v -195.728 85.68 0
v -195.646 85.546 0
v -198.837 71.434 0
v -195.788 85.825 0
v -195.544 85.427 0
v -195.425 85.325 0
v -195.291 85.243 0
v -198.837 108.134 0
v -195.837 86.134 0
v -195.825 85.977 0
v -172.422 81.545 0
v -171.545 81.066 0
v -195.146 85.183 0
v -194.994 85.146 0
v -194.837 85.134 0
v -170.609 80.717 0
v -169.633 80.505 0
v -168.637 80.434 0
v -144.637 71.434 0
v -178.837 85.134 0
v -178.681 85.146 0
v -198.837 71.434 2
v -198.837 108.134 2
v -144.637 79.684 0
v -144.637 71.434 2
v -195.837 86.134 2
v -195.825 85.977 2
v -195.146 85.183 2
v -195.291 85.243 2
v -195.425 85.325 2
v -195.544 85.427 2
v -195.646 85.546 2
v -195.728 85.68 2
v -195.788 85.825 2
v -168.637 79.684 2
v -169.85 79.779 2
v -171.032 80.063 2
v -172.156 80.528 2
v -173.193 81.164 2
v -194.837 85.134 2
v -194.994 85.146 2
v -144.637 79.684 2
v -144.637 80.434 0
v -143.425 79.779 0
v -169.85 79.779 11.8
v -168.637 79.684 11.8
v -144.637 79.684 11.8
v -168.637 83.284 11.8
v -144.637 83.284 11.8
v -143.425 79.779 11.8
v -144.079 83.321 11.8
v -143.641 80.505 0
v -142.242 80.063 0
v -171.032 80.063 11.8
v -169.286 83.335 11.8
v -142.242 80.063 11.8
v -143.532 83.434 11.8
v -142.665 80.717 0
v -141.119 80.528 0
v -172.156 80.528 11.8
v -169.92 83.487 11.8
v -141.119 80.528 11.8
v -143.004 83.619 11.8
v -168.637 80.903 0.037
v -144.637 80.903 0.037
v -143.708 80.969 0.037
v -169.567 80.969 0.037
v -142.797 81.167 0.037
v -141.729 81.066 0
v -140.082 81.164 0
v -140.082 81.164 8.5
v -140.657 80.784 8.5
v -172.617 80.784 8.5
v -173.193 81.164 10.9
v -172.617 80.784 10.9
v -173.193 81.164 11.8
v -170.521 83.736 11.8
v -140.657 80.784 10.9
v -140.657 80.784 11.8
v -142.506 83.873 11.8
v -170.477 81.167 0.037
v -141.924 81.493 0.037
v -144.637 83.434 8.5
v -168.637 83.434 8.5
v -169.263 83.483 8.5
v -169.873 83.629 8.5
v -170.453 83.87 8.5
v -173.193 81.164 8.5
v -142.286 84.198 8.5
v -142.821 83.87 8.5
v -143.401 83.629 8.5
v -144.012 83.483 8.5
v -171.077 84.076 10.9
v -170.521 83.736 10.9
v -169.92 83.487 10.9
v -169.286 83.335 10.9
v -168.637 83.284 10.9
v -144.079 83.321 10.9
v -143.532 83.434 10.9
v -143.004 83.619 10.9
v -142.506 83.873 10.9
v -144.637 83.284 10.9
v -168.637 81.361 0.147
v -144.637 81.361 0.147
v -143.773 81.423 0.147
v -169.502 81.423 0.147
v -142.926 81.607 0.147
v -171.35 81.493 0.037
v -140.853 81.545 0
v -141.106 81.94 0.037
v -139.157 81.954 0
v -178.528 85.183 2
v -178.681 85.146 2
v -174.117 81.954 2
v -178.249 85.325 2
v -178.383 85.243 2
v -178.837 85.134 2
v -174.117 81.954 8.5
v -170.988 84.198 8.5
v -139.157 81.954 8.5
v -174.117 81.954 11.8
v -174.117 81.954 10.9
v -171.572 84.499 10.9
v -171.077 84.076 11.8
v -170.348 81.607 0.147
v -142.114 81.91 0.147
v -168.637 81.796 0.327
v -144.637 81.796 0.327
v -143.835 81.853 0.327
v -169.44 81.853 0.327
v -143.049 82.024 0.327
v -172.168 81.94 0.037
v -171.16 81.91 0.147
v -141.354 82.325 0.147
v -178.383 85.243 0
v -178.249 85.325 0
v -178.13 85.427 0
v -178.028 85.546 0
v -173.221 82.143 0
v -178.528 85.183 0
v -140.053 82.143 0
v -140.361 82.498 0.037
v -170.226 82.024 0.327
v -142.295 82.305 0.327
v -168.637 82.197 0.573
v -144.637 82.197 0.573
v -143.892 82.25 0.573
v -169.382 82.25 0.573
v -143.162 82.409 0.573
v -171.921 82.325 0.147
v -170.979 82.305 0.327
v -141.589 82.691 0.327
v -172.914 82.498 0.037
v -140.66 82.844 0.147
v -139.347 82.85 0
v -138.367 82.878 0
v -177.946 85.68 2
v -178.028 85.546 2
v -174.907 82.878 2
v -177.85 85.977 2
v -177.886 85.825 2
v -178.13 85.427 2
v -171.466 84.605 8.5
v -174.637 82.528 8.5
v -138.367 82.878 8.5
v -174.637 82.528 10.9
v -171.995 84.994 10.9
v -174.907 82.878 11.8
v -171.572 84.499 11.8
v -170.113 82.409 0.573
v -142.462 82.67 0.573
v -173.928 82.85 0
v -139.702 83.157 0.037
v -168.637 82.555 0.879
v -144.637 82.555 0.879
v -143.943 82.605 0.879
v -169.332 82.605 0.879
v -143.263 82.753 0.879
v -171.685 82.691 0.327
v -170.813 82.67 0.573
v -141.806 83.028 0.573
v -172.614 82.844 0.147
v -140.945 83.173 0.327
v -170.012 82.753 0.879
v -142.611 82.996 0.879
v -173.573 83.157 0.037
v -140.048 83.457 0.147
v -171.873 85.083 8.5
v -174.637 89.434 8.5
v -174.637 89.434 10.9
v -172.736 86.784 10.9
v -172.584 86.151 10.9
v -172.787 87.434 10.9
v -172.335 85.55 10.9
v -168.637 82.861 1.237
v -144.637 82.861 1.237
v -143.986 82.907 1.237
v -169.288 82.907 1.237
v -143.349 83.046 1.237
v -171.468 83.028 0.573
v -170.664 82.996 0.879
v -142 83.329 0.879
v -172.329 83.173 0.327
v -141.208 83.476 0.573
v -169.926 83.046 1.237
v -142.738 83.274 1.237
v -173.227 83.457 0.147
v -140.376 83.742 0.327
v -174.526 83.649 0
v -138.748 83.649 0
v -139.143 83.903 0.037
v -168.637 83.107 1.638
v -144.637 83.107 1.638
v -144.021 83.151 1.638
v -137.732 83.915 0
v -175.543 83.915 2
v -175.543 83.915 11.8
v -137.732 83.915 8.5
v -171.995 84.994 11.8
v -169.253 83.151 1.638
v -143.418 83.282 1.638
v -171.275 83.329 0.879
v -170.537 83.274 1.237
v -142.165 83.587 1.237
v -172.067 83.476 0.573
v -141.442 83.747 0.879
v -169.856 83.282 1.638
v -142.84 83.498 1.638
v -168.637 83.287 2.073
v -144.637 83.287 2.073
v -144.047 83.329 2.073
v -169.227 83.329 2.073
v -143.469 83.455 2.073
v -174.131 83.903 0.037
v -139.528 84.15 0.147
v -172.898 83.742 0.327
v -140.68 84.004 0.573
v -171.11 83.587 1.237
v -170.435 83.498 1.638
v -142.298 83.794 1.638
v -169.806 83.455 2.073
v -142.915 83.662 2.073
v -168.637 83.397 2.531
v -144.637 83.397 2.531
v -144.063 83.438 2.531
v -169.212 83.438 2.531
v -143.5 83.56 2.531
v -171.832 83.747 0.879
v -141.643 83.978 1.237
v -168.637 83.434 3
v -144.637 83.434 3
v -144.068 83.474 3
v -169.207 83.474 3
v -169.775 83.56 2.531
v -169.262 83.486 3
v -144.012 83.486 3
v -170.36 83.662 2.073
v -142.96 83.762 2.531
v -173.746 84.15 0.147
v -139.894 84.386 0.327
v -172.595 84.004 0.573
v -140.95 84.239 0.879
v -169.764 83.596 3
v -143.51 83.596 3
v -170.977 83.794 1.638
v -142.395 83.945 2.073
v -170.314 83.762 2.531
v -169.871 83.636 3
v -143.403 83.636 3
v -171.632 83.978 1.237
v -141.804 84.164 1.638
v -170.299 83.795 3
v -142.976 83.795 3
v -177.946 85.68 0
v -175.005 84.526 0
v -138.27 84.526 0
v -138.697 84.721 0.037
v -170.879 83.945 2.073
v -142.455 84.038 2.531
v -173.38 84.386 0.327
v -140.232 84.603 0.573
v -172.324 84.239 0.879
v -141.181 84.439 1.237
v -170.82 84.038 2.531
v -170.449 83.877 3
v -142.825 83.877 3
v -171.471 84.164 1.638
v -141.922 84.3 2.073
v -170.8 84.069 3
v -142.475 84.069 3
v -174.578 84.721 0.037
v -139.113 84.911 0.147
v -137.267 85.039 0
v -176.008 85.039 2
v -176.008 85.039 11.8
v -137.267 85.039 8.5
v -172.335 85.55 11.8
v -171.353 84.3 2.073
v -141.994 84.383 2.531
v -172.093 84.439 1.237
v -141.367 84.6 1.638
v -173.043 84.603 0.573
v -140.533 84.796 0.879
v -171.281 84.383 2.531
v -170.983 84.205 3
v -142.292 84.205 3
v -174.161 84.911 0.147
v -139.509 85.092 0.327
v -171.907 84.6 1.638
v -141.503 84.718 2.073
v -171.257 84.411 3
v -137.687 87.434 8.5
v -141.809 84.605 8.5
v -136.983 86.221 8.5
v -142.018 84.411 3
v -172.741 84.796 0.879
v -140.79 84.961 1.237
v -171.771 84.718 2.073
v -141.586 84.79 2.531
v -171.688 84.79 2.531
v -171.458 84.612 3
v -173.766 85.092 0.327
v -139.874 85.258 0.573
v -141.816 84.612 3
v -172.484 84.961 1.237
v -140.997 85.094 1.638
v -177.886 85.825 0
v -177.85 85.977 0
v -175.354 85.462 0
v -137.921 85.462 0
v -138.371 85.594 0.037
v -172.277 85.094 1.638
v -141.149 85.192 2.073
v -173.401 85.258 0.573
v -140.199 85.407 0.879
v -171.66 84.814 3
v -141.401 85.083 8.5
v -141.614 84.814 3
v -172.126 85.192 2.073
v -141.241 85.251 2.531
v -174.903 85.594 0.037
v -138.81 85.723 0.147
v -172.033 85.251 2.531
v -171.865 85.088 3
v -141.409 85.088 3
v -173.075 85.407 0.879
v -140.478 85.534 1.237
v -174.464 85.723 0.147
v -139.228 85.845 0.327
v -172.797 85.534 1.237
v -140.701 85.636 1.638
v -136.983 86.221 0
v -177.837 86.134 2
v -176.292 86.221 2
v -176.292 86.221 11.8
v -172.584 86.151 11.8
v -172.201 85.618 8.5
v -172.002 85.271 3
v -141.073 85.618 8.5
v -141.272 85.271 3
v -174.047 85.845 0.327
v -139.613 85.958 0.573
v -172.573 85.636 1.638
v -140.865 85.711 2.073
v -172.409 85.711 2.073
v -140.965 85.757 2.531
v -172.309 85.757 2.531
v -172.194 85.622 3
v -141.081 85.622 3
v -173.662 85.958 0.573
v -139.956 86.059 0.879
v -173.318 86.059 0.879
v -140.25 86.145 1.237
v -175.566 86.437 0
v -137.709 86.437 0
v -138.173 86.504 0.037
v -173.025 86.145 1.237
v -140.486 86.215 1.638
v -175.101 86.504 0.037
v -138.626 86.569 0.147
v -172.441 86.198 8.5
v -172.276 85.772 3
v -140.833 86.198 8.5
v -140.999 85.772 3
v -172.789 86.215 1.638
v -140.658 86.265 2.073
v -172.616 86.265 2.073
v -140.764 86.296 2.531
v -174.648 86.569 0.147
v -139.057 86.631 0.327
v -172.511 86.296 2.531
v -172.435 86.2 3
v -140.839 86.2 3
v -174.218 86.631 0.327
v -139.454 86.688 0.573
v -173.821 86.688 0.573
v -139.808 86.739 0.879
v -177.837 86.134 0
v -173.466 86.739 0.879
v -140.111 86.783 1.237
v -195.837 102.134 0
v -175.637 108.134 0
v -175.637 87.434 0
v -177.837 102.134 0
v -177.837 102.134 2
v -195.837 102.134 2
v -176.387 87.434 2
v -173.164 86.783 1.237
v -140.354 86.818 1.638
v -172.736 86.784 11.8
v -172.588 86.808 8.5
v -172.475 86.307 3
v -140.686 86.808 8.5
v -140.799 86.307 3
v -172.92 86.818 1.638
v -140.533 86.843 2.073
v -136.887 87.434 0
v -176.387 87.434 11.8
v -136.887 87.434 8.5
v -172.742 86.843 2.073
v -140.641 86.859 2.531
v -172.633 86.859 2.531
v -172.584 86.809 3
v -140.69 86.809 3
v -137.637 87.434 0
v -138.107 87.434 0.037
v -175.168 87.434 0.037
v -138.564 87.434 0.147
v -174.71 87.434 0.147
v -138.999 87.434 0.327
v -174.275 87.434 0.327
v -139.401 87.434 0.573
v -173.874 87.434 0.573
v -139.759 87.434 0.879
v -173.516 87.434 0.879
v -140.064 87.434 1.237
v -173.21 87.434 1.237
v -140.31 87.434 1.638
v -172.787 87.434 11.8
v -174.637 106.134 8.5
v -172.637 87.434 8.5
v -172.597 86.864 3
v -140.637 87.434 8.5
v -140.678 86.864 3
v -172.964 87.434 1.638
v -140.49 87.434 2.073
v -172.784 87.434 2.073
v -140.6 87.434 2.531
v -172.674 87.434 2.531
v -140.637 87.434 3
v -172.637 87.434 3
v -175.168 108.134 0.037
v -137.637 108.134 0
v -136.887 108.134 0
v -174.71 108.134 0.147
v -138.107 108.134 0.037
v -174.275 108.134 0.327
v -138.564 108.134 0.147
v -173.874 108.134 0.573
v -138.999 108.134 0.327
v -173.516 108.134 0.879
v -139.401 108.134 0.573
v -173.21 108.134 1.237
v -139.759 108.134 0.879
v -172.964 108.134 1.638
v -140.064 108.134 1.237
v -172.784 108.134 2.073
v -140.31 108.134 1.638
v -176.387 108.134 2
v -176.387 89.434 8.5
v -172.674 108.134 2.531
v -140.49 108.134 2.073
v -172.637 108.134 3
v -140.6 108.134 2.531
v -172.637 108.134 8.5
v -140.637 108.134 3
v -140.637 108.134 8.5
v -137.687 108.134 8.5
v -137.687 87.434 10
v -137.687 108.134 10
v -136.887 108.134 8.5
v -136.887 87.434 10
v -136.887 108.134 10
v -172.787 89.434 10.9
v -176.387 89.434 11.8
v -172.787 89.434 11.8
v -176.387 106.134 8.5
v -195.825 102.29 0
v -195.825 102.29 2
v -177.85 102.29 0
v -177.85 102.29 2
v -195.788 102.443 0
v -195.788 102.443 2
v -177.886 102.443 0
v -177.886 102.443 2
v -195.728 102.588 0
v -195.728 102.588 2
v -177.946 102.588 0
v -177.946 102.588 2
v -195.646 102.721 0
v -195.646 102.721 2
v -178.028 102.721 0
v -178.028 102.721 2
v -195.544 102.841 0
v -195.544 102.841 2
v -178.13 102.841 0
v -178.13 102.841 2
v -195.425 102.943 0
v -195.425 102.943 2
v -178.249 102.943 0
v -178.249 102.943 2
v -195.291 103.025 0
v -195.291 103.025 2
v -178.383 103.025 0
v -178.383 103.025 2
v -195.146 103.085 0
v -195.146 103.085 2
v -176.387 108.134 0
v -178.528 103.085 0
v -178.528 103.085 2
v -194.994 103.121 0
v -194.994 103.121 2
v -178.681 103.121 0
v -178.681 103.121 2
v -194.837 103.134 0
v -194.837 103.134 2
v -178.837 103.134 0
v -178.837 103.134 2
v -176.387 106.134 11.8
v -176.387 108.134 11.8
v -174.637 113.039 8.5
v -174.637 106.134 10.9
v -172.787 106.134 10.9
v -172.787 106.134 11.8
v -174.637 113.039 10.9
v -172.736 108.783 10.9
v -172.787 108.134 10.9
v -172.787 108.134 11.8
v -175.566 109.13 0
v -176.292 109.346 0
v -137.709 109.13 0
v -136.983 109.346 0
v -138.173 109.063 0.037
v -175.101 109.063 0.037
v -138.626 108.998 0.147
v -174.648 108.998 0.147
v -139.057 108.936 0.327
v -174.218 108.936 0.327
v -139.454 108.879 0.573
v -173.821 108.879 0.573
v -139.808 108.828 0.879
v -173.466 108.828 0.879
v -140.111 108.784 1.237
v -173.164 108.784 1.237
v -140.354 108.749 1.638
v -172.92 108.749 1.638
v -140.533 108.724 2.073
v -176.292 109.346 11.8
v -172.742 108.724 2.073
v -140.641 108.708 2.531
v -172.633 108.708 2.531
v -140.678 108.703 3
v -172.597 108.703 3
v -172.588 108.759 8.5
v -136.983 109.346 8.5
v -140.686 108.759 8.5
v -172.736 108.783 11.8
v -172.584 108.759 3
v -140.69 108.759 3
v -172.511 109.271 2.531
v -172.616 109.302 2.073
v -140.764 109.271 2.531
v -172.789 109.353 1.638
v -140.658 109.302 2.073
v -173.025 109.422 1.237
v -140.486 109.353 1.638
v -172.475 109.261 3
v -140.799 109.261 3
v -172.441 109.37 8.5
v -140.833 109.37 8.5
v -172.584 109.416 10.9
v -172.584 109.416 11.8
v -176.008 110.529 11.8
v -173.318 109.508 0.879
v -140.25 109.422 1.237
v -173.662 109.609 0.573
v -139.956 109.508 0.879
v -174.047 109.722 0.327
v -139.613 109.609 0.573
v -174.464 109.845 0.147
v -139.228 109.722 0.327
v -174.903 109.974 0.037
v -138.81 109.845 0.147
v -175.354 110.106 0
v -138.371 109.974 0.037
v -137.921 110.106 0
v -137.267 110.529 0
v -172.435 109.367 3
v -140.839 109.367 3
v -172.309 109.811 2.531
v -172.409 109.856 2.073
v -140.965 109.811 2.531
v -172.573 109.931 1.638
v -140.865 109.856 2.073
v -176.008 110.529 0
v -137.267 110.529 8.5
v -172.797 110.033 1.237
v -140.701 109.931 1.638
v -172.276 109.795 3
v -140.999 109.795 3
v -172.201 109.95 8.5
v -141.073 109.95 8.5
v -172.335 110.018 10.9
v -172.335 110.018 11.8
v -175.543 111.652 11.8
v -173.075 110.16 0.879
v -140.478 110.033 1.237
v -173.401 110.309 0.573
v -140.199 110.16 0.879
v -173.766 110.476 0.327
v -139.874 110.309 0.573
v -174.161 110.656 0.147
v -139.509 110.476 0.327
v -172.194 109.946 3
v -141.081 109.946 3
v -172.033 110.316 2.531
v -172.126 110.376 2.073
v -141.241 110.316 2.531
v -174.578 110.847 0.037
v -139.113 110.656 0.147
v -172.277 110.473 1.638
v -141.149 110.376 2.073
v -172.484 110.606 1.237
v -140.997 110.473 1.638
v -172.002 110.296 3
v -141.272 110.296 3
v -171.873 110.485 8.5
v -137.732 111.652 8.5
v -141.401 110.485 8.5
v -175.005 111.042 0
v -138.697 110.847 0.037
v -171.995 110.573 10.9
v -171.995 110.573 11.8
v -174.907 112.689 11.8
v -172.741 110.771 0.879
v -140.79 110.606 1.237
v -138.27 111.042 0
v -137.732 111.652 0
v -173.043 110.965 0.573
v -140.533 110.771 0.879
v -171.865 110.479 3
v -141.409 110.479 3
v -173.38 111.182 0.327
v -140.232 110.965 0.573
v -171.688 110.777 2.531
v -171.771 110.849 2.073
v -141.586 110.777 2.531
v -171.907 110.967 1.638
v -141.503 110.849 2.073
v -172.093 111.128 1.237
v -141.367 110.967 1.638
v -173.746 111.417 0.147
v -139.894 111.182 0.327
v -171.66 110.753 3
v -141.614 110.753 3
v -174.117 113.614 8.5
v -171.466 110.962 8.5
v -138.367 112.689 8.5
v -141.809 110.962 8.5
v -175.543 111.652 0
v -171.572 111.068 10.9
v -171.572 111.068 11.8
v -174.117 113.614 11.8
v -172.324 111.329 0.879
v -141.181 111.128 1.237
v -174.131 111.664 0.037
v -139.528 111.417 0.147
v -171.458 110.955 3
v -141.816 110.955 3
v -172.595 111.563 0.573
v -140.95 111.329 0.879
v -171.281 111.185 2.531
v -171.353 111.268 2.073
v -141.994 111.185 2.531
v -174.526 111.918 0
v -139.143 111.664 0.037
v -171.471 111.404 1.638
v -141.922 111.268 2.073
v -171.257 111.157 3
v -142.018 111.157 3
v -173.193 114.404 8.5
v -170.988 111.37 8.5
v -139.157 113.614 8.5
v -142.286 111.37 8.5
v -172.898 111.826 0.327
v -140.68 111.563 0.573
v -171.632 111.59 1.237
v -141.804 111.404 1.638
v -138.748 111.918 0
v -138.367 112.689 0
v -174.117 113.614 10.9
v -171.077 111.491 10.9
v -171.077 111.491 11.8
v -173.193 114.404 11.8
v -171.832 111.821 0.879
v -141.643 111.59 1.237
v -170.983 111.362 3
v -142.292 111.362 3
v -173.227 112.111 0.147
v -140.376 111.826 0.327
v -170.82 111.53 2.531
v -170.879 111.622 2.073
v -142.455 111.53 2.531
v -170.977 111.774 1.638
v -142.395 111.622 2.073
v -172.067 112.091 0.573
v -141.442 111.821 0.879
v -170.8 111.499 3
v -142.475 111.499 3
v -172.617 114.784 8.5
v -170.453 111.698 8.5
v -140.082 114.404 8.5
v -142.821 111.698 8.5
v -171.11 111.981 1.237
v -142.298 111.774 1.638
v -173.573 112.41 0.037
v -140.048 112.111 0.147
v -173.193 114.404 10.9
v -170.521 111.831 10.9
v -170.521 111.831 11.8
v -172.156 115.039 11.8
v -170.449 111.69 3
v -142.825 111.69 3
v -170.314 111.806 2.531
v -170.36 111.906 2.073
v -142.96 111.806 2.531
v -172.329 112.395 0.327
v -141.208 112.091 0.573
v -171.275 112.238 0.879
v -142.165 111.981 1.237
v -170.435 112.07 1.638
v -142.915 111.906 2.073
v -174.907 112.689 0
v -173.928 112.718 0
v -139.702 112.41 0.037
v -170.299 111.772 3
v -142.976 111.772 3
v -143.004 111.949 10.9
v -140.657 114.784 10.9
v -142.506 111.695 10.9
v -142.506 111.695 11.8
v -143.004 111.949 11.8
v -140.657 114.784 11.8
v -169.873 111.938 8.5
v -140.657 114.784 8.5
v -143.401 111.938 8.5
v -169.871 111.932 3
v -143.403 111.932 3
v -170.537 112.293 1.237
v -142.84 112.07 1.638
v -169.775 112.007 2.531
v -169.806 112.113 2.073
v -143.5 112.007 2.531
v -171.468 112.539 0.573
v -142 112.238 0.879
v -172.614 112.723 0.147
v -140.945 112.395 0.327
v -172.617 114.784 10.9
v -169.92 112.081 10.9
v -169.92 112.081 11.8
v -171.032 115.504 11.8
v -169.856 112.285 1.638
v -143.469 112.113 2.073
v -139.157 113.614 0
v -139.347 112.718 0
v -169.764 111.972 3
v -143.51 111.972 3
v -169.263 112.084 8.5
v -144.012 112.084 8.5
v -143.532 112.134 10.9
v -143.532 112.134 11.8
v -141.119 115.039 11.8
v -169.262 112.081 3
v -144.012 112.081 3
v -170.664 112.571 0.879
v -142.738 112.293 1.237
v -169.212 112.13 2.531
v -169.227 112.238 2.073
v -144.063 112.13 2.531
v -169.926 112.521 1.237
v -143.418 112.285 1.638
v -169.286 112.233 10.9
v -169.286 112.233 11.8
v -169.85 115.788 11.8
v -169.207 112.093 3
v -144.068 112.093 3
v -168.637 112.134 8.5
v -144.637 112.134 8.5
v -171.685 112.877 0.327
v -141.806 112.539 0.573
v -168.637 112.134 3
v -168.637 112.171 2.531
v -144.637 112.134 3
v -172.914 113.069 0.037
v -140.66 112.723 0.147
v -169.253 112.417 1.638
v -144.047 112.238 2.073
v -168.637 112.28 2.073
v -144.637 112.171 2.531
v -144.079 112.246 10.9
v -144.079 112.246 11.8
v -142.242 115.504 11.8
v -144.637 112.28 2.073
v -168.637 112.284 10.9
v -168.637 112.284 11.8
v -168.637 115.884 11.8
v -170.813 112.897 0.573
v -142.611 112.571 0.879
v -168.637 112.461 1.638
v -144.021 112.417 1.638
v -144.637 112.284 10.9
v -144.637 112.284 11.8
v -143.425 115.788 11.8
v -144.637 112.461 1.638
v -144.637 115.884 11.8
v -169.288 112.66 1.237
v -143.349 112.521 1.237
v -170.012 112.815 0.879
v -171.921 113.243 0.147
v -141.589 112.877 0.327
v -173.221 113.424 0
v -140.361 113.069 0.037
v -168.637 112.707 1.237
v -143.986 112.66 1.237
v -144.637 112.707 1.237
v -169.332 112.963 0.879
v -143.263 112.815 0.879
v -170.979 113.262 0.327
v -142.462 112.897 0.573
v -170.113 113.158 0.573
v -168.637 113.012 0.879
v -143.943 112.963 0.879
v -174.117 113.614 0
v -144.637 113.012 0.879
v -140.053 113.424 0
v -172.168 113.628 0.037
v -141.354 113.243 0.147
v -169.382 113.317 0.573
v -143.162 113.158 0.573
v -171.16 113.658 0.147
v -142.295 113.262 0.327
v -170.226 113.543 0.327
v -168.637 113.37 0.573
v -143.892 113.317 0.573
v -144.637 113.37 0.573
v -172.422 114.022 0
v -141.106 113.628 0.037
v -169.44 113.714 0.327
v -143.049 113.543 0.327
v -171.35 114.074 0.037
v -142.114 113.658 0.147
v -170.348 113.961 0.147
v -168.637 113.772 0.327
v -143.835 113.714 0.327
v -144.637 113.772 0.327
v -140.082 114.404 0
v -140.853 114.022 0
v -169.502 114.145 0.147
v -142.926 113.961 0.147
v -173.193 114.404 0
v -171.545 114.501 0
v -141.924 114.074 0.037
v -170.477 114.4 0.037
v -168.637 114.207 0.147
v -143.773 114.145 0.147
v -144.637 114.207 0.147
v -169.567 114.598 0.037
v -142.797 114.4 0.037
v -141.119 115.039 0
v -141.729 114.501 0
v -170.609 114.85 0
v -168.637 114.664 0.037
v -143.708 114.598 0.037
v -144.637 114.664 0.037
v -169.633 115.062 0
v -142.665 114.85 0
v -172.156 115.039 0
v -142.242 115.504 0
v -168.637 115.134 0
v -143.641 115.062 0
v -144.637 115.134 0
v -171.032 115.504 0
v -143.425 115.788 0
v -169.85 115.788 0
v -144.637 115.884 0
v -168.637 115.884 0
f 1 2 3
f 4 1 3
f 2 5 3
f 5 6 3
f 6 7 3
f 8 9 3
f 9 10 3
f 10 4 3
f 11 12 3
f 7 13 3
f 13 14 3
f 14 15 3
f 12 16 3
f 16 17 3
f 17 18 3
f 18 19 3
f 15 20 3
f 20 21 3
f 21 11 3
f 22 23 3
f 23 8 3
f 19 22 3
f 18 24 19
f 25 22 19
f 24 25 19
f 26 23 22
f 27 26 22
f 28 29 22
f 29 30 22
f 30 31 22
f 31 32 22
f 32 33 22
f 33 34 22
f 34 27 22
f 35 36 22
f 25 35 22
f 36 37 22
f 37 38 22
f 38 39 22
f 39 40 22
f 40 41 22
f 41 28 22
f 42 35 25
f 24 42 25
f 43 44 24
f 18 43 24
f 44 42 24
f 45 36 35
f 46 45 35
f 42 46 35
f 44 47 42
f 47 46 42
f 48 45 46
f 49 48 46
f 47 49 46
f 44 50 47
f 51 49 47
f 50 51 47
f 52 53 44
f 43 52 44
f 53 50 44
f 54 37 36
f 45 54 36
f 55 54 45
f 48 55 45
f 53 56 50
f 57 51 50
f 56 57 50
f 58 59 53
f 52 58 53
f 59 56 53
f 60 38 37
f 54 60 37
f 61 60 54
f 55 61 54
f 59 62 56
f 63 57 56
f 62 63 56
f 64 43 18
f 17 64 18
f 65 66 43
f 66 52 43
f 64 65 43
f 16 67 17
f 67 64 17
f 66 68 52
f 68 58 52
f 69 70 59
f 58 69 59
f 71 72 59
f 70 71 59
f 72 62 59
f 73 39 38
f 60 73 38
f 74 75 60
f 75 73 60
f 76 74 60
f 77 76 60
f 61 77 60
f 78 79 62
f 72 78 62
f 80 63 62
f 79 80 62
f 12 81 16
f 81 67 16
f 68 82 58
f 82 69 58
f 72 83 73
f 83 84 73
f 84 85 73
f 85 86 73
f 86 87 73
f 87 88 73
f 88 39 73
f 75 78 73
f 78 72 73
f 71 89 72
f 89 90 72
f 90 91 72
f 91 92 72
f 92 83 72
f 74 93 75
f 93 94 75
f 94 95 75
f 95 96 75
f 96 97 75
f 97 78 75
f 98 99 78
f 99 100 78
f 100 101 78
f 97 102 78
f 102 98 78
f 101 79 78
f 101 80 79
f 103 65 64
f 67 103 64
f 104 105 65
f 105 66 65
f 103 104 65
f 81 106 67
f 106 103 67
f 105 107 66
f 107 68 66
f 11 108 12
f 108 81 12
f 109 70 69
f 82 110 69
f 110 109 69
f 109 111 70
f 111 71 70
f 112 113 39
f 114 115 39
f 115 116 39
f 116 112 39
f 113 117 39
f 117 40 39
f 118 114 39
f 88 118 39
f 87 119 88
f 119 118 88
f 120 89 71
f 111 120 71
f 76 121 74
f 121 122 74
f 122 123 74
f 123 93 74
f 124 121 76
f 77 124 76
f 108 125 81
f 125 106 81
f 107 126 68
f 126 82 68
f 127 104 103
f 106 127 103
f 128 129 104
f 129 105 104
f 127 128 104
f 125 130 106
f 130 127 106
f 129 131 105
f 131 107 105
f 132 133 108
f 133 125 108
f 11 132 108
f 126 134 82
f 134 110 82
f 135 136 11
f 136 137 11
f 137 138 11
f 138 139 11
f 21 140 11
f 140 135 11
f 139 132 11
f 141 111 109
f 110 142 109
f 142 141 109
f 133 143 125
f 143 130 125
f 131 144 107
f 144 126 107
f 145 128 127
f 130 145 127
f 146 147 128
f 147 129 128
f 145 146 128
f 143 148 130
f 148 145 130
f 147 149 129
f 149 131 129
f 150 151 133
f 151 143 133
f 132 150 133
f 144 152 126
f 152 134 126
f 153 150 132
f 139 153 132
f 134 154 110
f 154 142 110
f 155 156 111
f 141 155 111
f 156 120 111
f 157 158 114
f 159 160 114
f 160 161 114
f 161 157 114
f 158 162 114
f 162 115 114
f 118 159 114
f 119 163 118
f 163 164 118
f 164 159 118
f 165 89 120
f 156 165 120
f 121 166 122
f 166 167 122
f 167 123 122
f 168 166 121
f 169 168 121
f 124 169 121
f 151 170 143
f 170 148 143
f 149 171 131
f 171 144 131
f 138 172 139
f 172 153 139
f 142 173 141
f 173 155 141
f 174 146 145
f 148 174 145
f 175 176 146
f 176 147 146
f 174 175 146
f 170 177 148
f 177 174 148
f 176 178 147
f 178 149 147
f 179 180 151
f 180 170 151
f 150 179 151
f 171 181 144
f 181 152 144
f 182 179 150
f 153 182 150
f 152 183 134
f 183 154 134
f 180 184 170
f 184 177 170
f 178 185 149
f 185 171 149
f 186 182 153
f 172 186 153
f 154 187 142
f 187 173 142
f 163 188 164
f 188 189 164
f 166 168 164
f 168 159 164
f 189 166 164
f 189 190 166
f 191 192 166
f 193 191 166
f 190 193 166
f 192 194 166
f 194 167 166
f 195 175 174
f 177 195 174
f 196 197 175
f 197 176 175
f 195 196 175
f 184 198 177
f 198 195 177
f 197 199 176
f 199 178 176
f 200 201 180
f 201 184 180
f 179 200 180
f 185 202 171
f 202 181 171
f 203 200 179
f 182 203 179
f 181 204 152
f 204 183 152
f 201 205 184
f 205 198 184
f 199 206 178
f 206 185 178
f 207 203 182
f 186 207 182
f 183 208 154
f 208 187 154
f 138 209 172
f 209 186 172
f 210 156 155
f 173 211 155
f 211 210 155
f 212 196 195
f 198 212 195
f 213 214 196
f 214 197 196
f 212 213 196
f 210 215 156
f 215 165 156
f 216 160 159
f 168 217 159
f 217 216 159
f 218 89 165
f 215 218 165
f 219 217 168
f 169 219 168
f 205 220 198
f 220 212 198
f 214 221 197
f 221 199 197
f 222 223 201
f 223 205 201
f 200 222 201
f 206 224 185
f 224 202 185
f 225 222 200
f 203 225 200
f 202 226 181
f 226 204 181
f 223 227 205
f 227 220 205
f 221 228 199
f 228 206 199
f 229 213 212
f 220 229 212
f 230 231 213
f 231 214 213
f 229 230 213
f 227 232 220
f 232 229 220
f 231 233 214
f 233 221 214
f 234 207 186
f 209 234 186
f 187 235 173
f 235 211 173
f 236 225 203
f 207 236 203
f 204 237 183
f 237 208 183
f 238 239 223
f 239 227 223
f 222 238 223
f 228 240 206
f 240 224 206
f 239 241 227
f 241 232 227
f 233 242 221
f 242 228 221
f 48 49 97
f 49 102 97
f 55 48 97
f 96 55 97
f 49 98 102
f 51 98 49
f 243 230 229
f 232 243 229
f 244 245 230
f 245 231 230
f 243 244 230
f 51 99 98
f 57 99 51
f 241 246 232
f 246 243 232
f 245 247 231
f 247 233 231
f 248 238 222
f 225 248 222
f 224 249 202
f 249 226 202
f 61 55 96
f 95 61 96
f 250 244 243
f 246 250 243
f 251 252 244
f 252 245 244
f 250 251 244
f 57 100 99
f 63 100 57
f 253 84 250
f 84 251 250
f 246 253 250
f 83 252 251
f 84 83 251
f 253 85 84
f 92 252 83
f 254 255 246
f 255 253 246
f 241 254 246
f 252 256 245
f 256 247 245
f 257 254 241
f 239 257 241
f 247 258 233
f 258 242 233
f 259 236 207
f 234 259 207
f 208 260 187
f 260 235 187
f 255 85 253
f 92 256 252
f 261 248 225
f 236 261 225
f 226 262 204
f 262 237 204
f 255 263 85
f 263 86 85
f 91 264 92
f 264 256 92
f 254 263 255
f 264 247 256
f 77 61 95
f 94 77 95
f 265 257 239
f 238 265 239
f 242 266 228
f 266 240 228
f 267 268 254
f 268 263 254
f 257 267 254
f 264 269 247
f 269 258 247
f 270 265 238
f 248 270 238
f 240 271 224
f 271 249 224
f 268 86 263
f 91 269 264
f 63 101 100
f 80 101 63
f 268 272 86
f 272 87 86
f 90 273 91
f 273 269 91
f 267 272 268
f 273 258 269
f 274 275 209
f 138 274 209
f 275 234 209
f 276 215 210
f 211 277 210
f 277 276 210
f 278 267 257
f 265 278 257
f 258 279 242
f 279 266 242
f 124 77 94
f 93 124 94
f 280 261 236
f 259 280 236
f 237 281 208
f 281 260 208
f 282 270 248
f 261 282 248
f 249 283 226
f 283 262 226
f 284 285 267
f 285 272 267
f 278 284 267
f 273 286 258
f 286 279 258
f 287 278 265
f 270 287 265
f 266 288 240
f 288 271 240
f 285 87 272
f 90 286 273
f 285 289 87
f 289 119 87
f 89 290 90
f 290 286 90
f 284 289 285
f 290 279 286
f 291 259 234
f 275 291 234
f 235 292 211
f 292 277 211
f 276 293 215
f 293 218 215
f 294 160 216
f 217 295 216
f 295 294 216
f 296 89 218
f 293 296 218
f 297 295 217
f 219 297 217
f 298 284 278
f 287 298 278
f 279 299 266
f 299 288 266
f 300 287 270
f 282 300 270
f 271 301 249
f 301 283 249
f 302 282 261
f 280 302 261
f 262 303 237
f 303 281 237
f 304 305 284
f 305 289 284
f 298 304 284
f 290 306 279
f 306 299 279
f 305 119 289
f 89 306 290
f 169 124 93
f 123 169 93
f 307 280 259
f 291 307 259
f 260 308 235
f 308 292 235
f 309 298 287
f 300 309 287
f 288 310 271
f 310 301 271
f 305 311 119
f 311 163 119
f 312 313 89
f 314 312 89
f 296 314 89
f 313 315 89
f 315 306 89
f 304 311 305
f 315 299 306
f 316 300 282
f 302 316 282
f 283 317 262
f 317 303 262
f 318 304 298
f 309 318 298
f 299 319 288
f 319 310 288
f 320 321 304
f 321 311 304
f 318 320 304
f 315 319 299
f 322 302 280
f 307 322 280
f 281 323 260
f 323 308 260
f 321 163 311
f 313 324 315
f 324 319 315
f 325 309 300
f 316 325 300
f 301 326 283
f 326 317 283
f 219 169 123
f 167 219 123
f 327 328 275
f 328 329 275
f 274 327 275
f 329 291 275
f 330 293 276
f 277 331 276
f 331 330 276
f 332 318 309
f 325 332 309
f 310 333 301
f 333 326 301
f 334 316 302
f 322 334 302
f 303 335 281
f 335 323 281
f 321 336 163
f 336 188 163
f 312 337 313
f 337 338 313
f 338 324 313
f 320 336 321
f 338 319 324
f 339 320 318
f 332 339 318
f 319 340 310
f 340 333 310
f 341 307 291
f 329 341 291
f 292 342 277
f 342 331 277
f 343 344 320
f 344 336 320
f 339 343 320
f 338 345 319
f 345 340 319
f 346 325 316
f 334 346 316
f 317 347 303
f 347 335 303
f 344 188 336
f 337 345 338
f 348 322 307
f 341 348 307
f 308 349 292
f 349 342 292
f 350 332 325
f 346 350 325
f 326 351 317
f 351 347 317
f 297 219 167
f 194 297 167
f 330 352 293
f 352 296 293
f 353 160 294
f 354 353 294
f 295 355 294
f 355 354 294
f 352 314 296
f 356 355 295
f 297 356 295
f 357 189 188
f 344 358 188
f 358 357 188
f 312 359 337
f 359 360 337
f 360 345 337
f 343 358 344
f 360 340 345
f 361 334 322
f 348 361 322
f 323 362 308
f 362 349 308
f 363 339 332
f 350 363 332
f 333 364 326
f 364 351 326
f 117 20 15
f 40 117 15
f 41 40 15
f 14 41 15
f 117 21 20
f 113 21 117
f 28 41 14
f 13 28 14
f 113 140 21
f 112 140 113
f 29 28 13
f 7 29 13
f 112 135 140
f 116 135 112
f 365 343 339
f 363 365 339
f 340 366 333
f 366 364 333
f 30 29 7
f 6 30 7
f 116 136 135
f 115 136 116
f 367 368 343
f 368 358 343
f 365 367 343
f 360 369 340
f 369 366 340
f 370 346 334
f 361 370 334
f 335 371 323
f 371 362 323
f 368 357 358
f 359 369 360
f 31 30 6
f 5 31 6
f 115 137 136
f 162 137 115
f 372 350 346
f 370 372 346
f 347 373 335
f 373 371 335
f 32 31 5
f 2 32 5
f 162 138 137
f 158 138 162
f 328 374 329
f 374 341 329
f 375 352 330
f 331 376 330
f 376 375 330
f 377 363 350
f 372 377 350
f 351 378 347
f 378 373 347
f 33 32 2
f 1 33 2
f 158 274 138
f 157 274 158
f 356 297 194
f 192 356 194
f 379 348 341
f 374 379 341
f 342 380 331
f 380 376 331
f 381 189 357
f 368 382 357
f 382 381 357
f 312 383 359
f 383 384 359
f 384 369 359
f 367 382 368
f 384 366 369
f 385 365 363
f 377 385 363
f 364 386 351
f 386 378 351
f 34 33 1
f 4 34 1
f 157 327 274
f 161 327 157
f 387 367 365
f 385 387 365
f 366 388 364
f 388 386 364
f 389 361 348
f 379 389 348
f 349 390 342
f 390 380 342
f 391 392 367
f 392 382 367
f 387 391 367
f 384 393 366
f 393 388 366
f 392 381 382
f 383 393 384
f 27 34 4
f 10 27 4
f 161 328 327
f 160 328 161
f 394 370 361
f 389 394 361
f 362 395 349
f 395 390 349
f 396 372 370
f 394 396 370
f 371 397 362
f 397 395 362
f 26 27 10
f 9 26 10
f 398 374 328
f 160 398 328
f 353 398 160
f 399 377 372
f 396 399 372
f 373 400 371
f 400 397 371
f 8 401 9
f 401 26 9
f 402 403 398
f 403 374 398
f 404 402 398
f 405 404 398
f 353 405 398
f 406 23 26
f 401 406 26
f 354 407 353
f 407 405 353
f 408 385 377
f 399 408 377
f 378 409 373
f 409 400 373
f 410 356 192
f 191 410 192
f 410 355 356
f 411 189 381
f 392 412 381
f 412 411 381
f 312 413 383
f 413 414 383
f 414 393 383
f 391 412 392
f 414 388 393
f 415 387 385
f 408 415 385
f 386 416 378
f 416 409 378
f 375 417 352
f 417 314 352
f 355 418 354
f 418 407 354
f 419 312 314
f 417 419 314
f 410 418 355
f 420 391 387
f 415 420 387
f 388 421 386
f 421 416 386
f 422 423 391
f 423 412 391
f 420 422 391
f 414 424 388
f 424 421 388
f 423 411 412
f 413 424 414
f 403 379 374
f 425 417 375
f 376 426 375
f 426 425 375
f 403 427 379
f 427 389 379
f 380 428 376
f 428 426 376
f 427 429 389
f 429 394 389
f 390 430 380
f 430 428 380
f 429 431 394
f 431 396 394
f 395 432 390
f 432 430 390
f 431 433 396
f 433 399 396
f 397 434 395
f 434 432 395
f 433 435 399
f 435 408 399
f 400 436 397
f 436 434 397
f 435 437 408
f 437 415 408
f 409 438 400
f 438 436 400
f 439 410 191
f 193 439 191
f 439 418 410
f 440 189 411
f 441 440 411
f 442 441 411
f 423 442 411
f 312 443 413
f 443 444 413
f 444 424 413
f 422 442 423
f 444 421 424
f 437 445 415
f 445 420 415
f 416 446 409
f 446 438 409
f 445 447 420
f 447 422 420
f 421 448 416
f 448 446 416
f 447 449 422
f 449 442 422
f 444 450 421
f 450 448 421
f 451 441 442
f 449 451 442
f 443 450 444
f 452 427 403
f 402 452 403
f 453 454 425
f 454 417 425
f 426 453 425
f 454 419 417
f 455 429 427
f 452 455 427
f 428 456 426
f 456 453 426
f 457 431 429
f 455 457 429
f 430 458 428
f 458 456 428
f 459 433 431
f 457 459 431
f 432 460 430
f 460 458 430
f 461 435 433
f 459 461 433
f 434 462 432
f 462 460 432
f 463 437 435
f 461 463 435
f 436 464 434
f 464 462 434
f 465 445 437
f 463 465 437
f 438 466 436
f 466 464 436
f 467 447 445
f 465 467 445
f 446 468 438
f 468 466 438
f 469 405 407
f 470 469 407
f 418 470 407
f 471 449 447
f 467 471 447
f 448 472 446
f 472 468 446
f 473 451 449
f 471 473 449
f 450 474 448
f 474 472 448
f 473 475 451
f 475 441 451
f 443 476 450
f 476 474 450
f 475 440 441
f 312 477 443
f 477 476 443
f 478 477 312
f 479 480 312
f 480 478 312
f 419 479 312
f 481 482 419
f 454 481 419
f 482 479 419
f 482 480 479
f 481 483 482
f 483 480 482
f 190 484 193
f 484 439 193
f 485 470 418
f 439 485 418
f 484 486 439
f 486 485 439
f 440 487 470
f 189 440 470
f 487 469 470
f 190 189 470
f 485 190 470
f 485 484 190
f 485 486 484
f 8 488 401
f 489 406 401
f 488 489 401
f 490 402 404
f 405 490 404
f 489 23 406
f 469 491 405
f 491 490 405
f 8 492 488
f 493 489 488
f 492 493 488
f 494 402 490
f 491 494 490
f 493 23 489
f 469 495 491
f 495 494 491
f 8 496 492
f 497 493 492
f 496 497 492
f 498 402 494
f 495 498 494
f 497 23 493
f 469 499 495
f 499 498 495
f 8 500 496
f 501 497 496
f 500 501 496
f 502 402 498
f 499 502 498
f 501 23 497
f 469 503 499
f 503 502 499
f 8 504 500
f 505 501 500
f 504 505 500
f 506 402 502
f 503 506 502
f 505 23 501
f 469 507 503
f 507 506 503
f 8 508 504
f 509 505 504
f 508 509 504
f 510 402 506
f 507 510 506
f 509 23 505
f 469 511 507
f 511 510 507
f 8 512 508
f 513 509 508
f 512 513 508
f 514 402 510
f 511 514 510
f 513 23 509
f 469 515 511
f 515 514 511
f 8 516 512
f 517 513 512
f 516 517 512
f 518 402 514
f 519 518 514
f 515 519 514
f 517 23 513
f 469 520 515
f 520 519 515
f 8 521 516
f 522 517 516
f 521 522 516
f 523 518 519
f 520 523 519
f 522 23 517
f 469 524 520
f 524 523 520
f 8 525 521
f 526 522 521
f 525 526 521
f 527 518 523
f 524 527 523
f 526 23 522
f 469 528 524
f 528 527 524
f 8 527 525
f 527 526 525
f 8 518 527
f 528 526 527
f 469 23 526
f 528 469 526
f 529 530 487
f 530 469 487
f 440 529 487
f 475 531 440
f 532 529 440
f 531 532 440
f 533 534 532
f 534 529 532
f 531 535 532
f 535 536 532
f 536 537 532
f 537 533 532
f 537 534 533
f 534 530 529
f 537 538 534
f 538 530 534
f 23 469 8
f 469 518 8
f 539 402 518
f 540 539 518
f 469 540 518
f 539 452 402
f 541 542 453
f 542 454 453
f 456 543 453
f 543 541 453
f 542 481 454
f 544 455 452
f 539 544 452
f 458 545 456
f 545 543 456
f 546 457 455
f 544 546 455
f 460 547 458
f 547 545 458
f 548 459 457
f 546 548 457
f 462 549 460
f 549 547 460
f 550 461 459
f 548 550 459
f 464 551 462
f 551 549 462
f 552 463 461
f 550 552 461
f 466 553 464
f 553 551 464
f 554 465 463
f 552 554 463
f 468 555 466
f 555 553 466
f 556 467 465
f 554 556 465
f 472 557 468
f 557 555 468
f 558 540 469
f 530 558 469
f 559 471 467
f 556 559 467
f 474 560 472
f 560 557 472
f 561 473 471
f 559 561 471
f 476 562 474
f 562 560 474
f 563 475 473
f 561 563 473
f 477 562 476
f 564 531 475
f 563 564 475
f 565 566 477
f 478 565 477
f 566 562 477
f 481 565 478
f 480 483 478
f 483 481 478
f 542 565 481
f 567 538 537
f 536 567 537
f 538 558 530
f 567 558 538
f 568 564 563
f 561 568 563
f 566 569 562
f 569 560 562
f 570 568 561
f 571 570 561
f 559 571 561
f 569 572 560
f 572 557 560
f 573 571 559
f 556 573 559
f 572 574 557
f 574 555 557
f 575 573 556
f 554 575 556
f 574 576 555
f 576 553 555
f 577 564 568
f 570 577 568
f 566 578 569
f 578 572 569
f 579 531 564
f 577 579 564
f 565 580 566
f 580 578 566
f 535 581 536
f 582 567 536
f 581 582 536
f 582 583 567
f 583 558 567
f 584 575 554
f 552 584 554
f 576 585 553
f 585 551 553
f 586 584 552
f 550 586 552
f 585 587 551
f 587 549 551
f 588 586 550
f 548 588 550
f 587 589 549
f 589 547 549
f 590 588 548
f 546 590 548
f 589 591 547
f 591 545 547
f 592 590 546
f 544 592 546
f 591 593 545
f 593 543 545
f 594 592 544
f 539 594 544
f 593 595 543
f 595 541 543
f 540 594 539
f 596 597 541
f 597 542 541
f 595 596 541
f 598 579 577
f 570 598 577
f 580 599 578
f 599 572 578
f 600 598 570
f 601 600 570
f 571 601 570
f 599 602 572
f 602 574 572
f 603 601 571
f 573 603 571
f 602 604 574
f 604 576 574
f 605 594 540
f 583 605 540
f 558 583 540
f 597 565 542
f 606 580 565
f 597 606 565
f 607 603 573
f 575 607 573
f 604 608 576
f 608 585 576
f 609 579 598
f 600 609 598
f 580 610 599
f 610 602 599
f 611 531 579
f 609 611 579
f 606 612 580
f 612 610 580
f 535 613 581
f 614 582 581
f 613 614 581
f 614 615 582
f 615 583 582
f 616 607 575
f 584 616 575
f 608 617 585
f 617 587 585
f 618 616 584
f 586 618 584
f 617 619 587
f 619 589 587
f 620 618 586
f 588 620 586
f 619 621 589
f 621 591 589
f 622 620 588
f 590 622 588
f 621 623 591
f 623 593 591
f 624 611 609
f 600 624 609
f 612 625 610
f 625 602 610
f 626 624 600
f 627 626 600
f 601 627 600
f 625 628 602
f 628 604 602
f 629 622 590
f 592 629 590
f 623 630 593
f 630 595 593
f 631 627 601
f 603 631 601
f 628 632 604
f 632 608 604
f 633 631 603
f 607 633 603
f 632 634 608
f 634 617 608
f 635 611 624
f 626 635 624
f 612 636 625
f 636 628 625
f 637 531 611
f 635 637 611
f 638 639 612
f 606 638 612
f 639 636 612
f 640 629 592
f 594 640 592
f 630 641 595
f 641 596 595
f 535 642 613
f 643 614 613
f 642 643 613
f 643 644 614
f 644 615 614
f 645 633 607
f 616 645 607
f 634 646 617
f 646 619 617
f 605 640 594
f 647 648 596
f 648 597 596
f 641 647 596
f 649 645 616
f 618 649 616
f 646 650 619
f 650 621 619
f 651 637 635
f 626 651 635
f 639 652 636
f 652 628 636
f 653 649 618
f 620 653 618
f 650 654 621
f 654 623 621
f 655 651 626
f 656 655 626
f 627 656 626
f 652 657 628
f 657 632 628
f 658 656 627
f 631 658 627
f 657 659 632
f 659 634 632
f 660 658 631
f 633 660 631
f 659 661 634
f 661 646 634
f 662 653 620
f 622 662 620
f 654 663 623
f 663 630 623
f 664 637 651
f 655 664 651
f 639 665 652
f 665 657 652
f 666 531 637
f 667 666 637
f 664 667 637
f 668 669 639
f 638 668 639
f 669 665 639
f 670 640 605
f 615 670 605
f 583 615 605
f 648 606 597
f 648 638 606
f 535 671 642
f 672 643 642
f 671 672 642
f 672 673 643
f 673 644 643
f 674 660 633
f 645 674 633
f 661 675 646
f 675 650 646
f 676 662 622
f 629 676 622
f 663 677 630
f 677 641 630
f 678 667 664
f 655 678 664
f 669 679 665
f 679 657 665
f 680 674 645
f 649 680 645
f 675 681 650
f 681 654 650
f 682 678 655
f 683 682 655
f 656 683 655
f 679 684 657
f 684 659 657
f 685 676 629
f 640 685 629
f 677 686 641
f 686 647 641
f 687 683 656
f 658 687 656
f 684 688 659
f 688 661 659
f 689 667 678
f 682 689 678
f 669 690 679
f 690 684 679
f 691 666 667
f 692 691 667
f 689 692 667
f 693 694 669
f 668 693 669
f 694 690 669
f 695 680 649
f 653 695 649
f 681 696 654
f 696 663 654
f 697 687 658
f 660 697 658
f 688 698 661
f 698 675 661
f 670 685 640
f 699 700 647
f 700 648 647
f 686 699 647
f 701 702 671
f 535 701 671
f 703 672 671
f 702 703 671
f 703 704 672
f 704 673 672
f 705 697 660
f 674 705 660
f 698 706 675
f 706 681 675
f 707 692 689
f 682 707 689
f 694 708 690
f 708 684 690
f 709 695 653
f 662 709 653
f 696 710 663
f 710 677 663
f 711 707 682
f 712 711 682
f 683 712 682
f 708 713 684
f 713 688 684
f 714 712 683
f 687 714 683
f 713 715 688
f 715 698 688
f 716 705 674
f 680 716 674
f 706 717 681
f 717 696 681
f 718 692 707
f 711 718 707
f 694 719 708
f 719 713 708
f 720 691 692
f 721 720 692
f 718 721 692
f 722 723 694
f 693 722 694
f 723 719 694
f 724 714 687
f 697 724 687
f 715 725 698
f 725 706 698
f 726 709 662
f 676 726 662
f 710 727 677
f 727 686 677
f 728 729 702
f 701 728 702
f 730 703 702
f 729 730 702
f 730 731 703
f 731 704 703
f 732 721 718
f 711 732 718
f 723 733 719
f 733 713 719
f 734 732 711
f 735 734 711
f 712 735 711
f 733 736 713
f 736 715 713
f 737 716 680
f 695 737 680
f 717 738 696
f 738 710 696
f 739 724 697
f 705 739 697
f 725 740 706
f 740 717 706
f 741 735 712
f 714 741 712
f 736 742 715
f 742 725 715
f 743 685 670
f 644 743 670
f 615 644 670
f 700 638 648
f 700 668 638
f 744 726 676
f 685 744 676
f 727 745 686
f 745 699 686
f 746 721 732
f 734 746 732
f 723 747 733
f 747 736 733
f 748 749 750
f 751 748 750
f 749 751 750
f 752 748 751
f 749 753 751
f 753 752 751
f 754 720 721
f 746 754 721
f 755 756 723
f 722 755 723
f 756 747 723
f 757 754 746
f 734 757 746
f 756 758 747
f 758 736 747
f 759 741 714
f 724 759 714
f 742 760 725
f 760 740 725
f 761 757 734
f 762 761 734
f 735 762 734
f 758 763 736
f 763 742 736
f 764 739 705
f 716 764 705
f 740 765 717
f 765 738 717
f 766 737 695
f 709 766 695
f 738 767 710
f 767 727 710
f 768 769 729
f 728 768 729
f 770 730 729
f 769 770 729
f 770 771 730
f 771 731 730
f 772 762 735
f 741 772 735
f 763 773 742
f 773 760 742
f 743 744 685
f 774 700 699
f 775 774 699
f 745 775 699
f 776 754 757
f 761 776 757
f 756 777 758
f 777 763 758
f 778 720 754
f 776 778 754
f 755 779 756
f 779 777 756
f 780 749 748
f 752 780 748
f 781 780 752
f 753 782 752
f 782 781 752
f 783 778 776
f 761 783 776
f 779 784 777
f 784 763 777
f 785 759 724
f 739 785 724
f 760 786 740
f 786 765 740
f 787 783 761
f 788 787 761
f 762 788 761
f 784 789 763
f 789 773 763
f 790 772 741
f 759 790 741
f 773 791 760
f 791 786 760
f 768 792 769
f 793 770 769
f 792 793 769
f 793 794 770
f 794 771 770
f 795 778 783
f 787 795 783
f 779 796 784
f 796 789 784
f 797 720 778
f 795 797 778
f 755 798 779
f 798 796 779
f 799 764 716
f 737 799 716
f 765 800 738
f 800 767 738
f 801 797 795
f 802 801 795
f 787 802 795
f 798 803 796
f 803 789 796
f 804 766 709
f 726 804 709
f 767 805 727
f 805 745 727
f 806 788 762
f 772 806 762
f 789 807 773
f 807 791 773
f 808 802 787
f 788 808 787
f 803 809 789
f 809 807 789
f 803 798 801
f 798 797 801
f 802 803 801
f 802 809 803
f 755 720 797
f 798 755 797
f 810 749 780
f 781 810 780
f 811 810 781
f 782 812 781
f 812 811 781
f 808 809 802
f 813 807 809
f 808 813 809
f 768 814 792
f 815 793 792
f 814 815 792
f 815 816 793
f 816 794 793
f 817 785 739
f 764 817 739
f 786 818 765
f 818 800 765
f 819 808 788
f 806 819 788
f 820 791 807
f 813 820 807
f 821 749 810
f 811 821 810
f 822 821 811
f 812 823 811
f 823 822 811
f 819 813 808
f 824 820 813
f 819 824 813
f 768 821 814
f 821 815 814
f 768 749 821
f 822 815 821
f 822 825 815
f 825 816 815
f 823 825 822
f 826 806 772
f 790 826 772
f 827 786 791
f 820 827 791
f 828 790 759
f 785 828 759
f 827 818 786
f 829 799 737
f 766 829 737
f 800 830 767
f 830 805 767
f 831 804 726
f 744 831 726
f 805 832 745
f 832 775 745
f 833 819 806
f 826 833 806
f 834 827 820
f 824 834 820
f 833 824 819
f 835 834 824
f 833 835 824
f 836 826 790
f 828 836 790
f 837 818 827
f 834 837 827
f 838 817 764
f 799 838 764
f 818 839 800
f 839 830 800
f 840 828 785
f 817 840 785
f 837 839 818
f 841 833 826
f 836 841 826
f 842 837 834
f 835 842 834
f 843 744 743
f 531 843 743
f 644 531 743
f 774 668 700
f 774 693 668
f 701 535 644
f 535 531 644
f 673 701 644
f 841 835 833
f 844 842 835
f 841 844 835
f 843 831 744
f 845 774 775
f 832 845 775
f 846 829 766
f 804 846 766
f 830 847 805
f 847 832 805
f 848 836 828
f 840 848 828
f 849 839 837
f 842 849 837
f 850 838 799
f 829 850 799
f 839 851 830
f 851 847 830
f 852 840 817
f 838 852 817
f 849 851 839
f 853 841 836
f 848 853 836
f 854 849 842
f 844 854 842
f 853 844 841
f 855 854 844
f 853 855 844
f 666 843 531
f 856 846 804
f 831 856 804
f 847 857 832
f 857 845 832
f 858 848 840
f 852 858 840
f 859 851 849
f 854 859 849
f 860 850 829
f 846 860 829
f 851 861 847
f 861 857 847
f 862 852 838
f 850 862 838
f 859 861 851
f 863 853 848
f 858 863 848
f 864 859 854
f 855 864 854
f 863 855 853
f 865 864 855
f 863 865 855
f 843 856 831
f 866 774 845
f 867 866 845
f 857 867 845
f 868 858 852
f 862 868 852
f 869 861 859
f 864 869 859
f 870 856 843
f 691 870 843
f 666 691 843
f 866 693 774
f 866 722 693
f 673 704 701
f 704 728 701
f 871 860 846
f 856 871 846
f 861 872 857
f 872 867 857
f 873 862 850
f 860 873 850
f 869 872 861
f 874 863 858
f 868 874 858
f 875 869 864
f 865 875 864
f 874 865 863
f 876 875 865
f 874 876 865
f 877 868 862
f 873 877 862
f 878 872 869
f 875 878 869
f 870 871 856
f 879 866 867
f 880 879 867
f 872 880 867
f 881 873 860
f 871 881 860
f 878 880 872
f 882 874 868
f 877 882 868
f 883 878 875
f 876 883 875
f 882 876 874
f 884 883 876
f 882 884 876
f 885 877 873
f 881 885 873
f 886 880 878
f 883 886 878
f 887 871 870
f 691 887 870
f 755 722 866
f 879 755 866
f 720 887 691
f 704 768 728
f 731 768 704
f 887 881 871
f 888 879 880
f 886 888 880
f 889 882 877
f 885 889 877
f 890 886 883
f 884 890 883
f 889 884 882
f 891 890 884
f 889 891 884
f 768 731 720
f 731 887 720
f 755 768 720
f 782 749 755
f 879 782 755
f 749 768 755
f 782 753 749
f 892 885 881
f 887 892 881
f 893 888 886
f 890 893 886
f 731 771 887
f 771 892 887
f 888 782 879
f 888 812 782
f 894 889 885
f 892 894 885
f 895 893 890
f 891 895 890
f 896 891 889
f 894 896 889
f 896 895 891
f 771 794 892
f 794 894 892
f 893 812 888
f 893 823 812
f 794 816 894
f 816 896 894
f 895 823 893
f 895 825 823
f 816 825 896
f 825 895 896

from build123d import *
from build123d.topology import SkipClean

# Parameters (mm, degrees)
SALIENTE_EXTRUIR1_DEPTH = 2
SALIENTE_EXTRUIR2_DEPTH = 6.5
SALIENTE_EXTRUIR4_DEPTH = 2.4
SALIENTE_EXTRUIR5_START = 2.4
SALIENTE_EXTRUIR5_DEPTH = 0.9
REDONDEO1_R             = 3
CROQUIS8_W              = 0.8
CROQUIS8_H              = 20.7
SALIENTE_EXTRUIR6_DEPTH = 1.5
CROQUIS9_W              = 18
CROQUIS9_H              = 18
CORTAR_EXTRUIR1_DEPTH   = 2
REDONDEO2_R             = 1


with BuildPart() as part:
    # Croquis1 → Saliente-Extruir1 (new body)
    with BuildSketch(Plane.XY):
        with BuildLine():
            Line((-198.83724752, 71.433656958), (-144.63724752, 71.433656958))
            Line((-144.63724752, 71.433656958), (-144.63724752, 79.683656958))
            ThreePointArc((-144.63724752, 79.683656958), (-139.157169966, 81.953579404), (-136.88724752, 87.433656958))
            Line((-136.88724752, 87.433656958), (-136.88724752, 108.133656958))
            ThreePointArc((-136.88724752, 108.133656958), (-139.157169966, 113.613734512), (-144.63724752, 115.883656958))
            Line((-144.63724752, 115.883656958), (-168.63724752, 115.883656958))
            ThreePointArc((-168.63724752, 115.883656958), (-174.117325074, 113.613734512), (-176.38724752, 108.133656958))
            Line((-176.38724752, 108.133656958), (-198.83724752, 108.133656958))
            Line((-198.83724752, 108.133656958), (-198.83724752, 71.433656958))
        make_face()
        with BuildLine():
            Line((-144.63724752, 83.433656958), (-168.63724752, 83.433656958))
            ThreePointArc((-168.63724752, 83.433656958), (-171.465674645, 84.605229833), (-172.63724752, 87.433656958))
            Line((-172.63724752, 87.433656958), (-172.63724752, 108.133656958))
            ThreePointArc((-172.63724752, 108.133656958), (-171.465674645, 110.962084083), (-168.63724752, 112.133656958))
            Line((-168.63724752, 112.133656958), (-144.63724752, 112.133656958))
            ThreePointArc((-144.63724752, 112.133656958), (-141.808820395, 110.962084083), (-140.63724752, 108.133656958))
            Line((-140.63724752, 108.133656958), (-140.63724752, 87.433656958))
            ThreePointArc((-140.63724752, 87.433656958), (-141.808820395, 84.605229833), (-144.63724752, 83.433656958))
        make_face(mode=Mode.SUBTRACT)
    extrude(amount=SALIENTE_EXTRUIR1_DEPTH)

    # Croquis3 → Saliente-Extruir2 (add)
    with BuildSketch(Plane.XY.offset(2)):
        with BuildLine():
            Line((-136.88724752, 87.433656958), (-136.88724752, 108.133656958))
            ThreePointArc((-136.88724752, 108.133656958), (-139.157169966, 113.613734512), (-144.63724752, 115.883656958))
            Line((-144.63724752, 115.883656958), (-168.63724752, 115.883656958))
            ThreePointArc((-168.63724752, 115.883656958), (-174.117325074, 113.613734512), (-176.38724752, 108.133656958))
            Line((-176.38724752, 108.133656958), (-176.38724752, 87.433656958))
            ThreePointArc((-176.38724752, 87.433656958), (-174.117325074, 81.953579404), (-168.63724752, 79.683656958))
            Line((-168.63724752, 79.683656958), (-144.63724752, 79.683656958))
            ThreePointArc((-144.63724752, 79.683656958), (-139.157169966, 81.953579404), (-136.88724752, 87.433656958))
        make_face()
        with BuildLine():
            Line((-140.63724752, 87.433656958), (-140.63724752, 108.133656958))
            ThreePointArc((-140.63724752, 108.133656958), (-141.808820395, 110.962084083), (-144.63724752, 112.133656958))
            Line((-144.63724752, 112.133656958), (-168.63724752, 112.133656958))
            ThreePointArc((-168.63724752, 112.133656958), (-171.465674645, 110.962084083), (-172.63724752, 108.133656958))
            Line((-172.63724752, 108.133656958), (-172.63724752, 87.433656958))
            ThreePointArc((-172.63724752, 87.433656958), (-171.465674645, 84.605229833), (-168.63724752, 83.433656958))
            Line((-168.63724752, 83.433656958), (-144.63724752, 83.433656958))
            ThreePointArc((-144.63724752, 83.433656958), (-141.808820395, 84.605229833), (-140.63724752, 87.433656958))
        make_face(mode=Mode.SUBTRACT)
    extrude(amount=SALIENTE_EXTRUIR2_DEPTH)

    # Croquis6 → Saliente-Extruir4 (add)
    with SkipClean():  # the faces are left unmerged after this step: merging them gives an invalid solid
        with BuildSketch(Plane.XY.offset(8.5)):
            with BuildLine():
                Line((-172.617197268, 114.783656958), (-140.657297772, 114.783656958))
                ThreePointArc((-140.657297772, 114.783656958), (-142.572665238, 115.603596717), (-144.63724752, 115.883656958))
                Line((-144.63724752, 115.883656958), (-168.63724752, 115.883656958))
                ThreePointArc((-168.63724752, 115.883656958), (-170.701829802, 115.603596717), (-172.617197268, 114.783656958))
            make_face()
            with BuildLine():
                Line((-144.63724752, 79.683656958), (-168.63724752, 79.683656958))
                ThreePointArc((-168.63724752, 79.683656958), (-170.701829802, 79.963717199), (-172.617197268, 80.783656958))
                Line((-172.617197268, 80.783656958), (-140.657297772, 80.783656958))
                ThreePointArc((-140.657297772, 80.783656958), (-142.572665238, 79.963717199), (-144.63724752, 79.683656958))
            make_face()
            with BuildLine():
                Line((-174.63724752, 113.039011176), (-174.63724752, 106.133656958))
                Line((-174.63724752, 106.133656958), (-176.38724752, 106.133656958))
                Line((-176.38724752, 106.133656958), (-176.38724752, 108.133656958))
                ThreePointArc((-176.38724752, 108.133656958), (-175.93664818, 110.73774029), (-174.63724752, 113.039011176))
            make_face()
            with BuildLine():
                Line((-176.38724752, 87.433656958), (-176.38724752, 89.433656958))
                Line((-176.38724752, 89.433656958), (-174.63724752, 89.433656958))
                Line((-174.63724752, 89.433656958), (-174.63724752, 82.52830274))
                ThreePointArc((-174.63724752, 82.52830274), (-175.93664818, 84.829573626), (-176.38724752, 87.433656958))
            make_face()
        extrude(amount=SALIENTE_EXTRUIR4_DEPTH)

    # Croquis7 → Saliente-Extruir5 (add)
    with SkipClean():  # the faces are left unmerged after this step: merging them gives an invalid solid
        with BuildSketch(Plane.XY.offset(8.5).offset(SALIENTE_EXTRUIR5_START)):
            with BuildLine():
                Line((-172.78724752, 106.133656958), (-172.78724752, 108.133656958))
                ThreePointArc((-172.78724752, 108.133656958), (-171.571740662, 111.0681501), (-168.63724752, 112.283656958))
                Line((-168.63724752, 112.283656958), (-144.63724752, 112.283656958))
                ThreePointArc((-144.63724752, 112.283656958), (-143.531697008, 112.133689216), (-142.506048622, 111.6946247))
                Line((-142.506048622, 111.6946247), (-140.657297772, 114.783656958))
                ThreePointArc((-140.657297772, 114.783656958), (-142.572665238, 115.603596717), (-144.63724752, 115.883656958))
                Line((-144.63724752, 115.883656958), (-168.63724752, 115.883656958))
                ThreePointArc((-168.63724752, 115.883656958), (-174.117325074, 113.613734512), (-176.38724752, 108.133656958))
                Line((-176.38724752, 108.133656958), (-176.38724752, 106.133656958))
                Line((-176.38724752, 106.133656958), (-172.78724752, 106.133656958))
            make_face()
            with BuildLine():
                Line((-168.63724752, 79.683656958), (-144.63724752, 79.683656958))
                ThreePointArc((-144.63724752, 79.683656958), (-142.572665238, 79.963717199), (-140.657297772, 80.783656958))
                Line((-140.657297772, 80.783656958), (-142.506048622, 83.872689216))
                ThreePointArc((-142.506048622, 83.872689216), (-143.531697008, 83.4336247), (-144.63724752, 83.283656958))
                Line((-144.63724752, 83.283656958), (-168.63724752, 83.283656958))
                ThreePointArc((-168.63724752, 83.283656958), (-171.571740662, 84.499163816), (-172.78724752, 87.433656958))
                Line((-172.78724752, 87.433656958), (-172.78724752, 89.433656958))
                Line((-172.78724752, 89.433656958), (-176.38724752, 89.433656958))
                Line((-176.38724752, 89.433656958), (-176.38724752, 87.433656958))
                ThreePointArc((-176.38724752, 87.433656958), (-174.117325074, 81.953579404), (-168.63724752, 79.683656958))
            make_face()
        extrude(amount=SALIENTE_EXTRUIR5_DEPTH)

    # Redondeo1
    redondeo1_edges = [part.edges().sort_by_distance(p)[0] for p in [
        (-141.808820395, 84.605229833, 0),
        (-140.63724752, 97.783656958, 0),
        (-141.808820395, 110.962084083, 0),
        (-156.63724752, 112.133656958, 0),
        (-171.465674645, 110.962084083, 0),
        (-172.63724752, 97.783656958, 0),
        (-171.465674645, 84.605229833, 0),
        (-156.63724752, 83.433656958, 0),
    ]]
    fillet(redondeo1_edges, radius=REDONDEO1_R)

    # Croquis8 → Saliente-Extruir6 (add)
    with SkipClean():  # the faces are left unmerged after this step: merging them gives an invalid solid
        with BuildSketch(Plane.XY.offset(8.5)):
            with Locations((-137.28724752, 97.783656958)):
                Rectangle(CROQUIS8_W, CROQUIS8_H)
        extrude(amount=SALIENTE_EXTRUIR6_DEPTH)

    # Croquis9 → Cortar-Extruir1 (cut)
    with SkipClean():  # the faces are left unmerged after this step: merging them gives an invalid solid
        with BuildSketch(Plane.XY.offset(2)):
            with Locations((-186.83724752, 94.133656958)):
                Rectangle(CROQUIS9_W, CROQUIS9_H)
        extrude(amount=-CORTAR_EXTRUIR1_DEPTH, mode=Mode.SUBTRACT)

    # Redondeo2
    redondeo2_edges = [part.edges().sort_by_distance(p)[0] for p in [
        (-177.83724752, 85.133656958, 1),
        (-177.83724752, 103.133656958, 1),
        (-195.83724752, 103.133656958, 1),
        (-195.83724752, 85.133656958, 1),
    ]]
    fillet(redondeo2_edges, radius=REDONDEO2_R)


solid = part.part
